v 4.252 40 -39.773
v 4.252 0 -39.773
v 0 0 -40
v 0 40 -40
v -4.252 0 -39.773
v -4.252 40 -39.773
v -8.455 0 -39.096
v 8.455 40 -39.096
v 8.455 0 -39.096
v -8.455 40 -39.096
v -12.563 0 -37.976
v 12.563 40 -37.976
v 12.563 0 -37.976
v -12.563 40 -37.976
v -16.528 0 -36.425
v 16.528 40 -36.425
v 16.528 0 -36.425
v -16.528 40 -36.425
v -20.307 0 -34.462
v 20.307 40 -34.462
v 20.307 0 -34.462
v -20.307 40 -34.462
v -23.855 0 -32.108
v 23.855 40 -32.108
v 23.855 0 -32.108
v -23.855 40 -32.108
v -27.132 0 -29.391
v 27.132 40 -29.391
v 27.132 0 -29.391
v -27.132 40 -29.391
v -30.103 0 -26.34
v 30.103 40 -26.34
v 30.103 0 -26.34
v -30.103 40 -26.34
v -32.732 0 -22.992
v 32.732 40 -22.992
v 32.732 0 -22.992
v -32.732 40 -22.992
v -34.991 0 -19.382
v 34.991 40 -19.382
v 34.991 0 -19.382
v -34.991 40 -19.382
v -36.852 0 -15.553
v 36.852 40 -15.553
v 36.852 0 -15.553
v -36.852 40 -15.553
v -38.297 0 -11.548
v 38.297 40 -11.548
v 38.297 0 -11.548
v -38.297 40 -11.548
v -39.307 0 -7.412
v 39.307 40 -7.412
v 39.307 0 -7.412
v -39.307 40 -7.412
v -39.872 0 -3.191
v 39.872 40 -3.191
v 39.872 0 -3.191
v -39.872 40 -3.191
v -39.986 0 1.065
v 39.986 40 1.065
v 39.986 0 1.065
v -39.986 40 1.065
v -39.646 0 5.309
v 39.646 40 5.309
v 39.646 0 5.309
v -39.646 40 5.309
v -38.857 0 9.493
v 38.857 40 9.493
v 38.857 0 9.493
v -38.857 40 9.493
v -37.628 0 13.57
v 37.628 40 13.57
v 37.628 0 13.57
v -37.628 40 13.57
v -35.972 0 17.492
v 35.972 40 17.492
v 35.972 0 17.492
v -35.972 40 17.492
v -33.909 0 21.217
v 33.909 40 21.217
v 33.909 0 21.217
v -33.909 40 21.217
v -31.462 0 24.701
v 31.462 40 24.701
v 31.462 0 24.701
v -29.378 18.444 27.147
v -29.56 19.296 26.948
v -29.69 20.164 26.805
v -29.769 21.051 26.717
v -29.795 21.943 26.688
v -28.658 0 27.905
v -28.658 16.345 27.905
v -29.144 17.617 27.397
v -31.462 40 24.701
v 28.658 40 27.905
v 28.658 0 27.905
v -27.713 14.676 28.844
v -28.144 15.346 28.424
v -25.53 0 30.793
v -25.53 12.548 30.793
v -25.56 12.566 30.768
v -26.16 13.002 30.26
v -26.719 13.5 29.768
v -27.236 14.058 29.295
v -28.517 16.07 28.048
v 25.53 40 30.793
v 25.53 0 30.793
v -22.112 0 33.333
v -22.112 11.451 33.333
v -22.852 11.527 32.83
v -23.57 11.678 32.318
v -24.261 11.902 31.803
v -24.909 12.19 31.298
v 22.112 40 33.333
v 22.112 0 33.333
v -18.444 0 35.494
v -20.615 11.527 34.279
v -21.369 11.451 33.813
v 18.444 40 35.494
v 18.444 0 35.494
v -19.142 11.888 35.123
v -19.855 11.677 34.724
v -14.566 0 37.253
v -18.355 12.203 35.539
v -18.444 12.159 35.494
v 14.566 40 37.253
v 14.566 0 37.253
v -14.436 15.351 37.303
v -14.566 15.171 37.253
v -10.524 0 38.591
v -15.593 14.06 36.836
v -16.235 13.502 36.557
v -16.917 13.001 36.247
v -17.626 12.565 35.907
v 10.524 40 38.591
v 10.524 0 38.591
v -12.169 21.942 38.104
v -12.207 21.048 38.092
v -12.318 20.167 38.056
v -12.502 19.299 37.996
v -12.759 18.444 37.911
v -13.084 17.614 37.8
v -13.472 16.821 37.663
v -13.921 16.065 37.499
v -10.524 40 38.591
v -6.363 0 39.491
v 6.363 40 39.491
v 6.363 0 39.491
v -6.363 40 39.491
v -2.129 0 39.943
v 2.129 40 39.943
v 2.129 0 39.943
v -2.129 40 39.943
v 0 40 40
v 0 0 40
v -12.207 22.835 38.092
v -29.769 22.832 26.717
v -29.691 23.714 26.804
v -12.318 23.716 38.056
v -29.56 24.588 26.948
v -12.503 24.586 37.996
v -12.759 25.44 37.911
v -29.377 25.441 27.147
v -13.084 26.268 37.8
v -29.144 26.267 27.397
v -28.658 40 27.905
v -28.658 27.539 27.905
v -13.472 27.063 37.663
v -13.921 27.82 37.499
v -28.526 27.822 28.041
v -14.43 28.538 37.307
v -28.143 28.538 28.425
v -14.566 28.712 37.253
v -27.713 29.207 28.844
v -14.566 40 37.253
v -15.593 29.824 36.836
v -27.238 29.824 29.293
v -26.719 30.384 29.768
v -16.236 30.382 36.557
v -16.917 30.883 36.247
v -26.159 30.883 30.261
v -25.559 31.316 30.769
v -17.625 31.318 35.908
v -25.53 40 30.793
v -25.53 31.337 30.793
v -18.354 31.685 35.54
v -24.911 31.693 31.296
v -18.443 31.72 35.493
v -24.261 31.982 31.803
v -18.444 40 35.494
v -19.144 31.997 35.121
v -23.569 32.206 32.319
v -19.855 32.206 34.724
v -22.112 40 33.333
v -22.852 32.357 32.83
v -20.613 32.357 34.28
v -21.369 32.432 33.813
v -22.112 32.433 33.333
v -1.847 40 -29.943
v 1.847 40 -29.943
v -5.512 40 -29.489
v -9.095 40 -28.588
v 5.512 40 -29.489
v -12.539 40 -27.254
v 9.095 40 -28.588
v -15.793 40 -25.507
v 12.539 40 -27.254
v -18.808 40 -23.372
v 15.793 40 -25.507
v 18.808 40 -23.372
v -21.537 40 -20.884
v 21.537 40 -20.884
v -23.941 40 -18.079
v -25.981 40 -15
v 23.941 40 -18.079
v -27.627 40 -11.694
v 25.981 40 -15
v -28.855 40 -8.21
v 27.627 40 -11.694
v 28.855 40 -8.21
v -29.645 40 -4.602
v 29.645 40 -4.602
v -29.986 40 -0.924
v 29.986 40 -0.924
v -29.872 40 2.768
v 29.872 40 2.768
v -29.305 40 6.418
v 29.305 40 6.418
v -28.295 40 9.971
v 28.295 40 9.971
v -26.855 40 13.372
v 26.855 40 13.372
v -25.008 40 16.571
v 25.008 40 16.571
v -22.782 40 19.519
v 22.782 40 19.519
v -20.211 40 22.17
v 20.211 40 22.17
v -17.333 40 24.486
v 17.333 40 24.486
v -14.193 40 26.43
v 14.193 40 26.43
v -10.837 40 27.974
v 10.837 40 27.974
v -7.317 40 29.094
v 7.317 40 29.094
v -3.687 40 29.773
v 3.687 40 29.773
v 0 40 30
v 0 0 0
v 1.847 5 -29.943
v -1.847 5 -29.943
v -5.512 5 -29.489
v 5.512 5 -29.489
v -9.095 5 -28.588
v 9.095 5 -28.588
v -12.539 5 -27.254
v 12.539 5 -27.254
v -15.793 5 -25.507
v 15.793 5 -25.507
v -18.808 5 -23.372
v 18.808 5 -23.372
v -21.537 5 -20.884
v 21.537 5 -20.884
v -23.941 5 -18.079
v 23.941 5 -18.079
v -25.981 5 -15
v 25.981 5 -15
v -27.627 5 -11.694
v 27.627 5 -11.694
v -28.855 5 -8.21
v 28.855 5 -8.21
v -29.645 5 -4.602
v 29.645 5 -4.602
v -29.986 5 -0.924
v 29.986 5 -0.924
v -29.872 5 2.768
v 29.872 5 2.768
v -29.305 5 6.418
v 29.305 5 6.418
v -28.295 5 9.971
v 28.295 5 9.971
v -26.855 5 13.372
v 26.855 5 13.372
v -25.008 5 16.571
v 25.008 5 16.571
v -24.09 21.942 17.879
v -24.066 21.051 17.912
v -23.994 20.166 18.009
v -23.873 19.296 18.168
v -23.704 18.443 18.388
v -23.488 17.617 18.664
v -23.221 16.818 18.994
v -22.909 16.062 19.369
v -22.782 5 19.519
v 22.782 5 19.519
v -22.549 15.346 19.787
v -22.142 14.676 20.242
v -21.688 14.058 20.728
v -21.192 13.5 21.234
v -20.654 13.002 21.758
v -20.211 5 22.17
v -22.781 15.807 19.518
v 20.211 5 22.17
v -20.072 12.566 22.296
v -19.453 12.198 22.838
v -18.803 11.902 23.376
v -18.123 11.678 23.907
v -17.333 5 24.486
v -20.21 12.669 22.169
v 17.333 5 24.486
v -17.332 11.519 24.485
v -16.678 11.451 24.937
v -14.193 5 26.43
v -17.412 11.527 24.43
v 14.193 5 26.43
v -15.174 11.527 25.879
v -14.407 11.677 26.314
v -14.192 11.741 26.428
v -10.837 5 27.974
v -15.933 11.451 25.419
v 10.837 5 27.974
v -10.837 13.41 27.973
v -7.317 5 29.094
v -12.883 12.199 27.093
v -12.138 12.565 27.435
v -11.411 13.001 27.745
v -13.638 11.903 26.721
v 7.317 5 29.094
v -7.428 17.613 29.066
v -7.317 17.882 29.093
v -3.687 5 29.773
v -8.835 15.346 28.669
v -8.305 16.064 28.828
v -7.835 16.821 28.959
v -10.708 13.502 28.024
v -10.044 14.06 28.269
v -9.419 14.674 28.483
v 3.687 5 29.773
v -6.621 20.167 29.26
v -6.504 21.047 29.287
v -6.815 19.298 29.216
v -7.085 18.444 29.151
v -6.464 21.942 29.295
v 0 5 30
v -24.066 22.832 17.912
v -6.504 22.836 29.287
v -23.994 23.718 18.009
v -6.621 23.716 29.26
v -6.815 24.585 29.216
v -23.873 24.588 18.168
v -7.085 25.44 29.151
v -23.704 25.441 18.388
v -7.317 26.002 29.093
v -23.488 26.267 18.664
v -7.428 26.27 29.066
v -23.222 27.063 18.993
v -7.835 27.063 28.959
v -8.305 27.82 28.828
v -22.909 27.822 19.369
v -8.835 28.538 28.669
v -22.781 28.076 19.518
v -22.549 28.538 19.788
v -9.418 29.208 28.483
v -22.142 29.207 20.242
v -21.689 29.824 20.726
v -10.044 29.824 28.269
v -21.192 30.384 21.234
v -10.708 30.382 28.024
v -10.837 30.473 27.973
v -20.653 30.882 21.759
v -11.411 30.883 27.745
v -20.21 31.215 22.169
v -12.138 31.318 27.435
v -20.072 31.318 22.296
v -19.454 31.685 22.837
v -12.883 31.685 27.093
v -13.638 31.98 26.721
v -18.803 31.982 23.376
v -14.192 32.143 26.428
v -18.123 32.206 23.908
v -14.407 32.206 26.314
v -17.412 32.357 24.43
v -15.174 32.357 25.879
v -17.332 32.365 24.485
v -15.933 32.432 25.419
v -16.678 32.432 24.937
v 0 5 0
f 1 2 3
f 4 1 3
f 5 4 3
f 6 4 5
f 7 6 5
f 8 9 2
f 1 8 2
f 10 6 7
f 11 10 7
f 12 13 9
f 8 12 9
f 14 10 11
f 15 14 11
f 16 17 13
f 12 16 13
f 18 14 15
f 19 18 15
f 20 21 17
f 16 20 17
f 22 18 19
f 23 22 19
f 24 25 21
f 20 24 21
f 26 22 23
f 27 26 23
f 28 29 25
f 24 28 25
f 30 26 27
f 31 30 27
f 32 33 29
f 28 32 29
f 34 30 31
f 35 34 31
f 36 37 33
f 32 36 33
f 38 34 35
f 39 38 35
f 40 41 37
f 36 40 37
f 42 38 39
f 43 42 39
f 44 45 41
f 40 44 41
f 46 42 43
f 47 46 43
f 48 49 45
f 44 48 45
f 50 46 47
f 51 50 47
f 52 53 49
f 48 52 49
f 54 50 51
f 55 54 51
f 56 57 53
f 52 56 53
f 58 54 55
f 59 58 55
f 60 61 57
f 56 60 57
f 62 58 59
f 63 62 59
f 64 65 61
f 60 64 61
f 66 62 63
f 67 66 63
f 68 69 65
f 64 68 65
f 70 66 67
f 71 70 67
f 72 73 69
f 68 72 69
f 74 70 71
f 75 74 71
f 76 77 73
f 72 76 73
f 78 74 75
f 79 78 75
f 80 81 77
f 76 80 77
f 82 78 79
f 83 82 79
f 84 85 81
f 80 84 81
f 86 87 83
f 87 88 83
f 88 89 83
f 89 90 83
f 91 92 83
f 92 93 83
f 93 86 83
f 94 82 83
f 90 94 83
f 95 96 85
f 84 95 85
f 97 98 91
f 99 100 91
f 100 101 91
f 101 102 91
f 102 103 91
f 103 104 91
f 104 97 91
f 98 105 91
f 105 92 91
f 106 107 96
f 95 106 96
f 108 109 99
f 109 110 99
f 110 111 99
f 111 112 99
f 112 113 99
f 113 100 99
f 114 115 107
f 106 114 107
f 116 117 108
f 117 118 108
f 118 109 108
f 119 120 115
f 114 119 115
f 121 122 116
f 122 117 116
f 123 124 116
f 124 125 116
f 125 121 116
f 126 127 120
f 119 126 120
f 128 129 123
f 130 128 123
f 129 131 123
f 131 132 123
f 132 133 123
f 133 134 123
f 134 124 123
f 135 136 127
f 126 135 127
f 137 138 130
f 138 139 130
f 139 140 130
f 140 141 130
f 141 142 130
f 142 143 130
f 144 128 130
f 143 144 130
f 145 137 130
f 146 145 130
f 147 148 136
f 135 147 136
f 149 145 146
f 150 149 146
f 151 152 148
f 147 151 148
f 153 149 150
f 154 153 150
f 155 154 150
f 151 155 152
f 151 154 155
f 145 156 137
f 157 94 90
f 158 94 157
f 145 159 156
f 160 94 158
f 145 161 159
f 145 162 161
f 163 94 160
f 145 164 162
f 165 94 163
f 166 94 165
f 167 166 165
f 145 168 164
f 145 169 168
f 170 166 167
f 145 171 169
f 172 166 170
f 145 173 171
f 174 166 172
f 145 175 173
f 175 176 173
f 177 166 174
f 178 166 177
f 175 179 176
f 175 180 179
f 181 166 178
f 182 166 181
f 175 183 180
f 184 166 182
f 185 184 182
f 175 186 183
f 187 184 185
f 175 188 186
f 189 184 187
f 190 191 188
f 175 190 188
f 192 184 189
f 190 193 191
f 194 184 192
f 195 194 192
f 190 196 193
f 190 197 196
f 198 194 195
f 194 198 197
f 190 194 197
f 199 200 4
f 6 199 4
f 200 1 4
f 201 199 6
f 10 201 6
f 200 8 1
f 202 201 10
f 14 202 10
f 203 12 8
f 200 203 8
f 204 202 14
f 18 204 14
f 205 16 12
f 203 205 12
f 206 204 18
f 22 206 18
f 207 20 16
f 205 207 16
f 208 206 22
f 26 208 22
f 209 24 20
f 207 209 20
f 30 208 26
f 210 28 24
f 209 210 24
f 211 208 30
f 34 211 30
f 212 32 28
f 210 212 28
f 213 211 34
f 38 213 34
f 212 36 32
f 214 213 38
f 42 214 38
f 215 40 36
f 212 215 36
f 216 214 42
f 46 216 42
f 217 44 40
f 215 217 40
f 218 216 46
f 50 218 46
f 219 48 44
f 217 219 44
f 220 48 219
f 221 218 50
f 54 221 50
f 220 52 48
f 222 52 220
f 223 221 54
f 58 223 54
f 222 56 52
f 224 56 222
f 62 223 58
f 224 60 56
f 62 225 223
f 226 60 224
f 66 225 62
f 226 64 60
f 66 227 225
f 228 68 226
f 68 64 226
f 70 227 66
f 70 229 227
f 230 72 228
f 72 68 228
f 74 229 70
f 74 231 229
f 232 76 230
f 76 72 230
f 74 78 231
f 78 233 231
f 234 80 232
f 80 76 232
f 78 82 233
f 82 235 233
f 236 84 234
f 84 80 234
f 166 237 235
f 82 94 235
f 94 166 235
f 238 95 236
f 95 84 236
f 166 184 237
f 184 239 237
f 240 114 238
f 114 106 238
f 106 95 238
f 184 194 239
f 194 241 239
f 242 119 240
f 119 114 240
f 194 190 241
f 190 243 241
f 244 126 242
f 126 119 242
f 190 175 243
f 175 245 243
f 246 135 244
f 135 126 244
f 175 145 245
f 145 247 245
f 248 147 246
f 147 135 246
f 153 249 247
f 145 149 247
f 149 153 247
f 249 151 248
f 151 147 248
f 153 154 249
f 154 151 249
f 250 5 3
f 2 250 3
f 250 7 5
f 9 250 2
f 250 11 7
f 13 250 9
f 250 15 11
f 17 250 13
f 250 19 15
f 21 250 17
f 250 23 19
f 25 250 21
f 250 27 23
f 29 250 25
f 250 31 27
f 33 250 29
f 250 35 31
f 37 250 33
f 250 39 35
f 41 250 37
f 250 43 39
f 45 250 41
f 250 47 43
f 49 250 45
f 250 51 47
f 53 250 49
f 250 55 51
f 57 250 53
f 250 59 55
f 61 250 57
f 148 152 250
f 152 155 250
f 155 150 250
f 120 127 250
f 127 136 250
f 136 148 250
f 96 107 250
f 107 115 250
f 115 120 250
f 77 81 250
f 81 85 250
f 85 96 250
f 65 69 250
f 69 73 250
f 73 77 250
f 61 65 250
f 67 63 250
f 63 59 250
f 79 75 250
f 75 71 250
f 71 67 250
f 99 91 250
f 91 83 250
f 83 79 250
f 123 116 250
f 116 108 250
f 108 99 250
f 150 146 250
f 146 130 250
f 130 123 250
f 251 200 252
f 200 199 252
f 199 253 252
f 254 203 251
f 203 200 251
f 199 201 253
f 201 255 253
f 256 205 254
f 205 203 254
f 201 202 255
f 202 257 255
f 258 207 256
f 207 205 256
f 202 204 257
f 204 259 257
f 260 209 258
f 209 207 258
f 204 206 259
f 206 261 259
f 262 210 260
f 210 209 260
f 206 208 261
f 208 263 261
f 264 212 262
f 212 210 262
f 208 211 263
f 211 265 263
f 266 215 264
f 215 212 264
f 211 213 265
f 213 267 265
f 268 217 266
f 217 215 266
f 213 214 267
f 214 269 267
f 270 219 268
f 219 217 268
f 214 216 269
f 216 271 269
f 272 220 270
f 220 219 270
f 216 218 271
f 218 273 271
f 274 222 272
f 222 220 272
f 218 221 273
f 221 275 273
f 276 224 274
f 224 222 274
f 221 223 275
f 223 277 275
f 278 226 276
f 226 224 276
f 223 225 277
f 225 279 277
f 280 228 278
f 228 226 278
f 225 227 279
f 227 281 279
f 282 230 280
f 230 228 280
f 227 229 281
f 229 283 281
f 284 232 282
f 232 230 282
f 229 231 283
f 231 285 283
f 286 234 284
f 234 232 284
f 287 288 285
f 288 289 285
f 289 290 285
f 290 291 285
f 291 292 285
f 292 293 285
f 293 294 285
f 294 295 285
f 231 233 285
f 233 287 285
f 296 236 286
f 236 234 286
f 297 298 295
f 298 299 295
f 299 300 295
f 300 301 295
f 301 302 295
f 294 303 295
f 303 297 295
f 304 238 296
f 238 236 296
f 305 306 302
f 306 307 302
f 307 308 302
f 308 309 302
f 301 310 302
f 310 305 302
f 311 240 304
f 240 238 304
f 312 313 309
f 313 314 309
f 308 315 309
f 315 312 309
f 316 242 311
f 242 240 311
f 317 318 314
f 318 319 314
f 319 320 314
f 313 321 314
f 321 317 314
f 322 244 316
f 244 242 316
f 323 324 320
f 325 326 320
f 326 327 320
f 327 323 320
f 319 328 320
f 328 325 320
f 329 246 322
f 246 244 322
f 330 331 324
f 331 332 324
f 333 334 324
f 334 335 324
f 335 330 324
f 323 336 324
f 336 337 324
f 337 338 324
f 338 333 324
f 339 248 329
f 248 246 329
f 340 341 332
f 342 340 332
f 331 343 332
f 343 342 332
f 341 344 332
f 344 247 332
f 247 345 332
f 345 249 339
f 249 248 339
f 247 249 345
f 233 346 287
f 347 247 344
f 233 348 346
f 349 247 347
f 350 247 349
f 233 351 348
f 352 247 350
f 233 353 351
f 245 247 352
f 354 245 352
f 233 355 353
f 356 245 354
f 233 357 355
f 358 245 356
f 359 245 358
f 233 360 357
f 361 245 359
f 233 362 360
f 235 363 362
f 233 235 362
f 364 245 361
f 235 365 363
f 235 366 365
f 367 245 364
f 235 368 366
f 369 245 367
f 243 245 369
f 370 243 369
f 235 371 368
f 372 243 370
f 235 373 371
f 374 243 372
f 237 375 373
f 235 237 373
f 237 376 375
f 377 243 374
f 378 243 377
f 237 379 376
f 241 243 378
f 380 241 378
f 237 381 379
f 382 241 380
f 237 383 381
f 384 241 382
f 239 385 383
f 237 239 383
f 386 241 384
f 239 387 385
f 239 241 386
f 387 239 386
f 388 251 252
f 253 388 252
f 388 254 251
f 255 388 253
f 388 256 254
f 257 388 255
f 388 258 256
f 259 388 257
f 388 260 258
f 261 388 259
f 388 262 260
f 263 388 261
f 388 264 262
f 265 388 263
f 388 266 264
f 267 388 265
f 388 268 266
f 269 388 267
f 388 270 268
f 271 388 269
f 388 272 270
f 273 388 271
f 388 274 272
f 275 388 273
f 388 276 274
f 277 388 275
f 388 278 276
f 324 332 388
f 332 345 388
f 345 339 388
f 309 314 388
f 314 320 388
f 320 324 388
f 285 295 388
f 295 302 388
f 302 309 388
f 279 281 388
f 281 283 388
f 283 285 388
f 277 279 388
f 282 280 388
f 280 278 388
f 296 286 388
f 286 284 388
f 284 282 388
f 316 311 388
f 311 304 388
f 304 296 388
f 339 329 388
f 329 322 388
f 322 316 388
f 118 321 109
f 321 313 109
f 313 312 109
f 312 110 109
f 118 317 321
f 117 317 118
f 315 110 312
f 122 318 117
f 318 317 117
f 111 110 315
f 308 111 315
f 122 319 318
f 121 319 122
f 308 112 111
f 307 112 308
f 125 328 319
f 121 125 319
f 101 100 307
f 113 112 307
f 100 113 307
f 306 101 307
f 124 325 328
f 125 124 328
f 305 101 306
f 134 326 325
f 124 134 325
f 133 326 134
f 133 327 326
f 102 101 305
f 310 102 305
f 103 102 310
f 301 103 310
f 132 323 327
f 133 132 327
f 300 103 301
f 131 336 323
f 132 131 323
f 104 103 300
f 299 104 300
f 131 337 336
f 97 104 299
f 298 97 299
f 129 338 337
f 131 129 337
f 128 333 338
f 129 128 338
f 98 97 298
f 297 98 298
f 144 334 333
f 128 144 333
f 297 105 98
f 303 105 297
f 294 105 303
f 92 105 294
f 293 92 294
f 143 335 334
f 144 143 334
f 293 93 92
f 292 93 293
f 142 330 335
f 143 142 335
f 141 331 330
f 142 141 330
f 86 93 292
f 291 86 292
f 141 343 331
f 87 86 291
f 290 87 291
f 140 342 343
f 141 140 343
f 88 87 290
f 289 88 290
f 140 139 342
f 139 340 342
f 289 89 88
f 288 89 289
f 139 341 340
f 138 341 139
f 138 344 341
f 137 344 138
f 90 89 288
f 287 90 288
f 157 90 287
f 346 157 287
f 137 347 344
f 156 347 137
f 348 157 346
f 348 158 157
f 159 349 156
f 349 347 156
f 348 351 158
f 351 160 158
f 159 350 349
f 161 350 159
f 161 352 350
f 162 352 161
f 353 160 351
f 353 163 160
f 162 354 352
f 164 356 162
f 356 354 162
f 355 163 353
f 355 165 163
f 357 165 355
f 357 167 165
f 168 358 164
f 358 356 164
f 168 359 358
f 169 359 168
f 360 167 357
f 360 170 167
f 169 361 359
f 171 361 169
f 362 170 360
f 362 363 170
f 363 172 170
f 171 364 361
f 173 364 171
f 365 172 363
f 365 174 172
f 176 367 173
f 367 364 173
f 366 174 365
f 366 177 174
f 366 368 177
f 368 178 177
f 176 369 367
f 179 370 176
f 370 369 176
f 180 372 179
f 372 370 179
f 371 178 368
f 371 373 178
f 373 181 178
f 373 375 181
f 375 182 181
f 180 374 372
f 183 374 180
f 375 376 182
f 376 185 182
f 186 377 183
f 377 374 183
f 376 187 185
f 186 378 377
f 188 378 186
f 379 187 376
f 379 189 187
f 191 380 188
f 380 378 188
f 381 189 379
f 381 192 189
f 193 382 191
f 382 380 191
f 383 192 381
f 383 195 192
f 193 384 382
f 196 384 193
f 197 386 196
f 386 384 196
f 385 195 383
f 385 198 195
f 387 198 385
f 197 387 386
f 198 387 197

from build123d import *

# Parameters (mm, degrees)
SKETCH_1_R                   = 40
EXTRUDE_1_DEPTH              = 40
SKETCH_3_R                   = 30
CUT_EXTRUDE_2_DEPTH          = 35
HOLE_WIZARD_21_0_21_1_REACH  = 100.524
HOLE_WIZARD_21_0_21_1_BORE_R = 10.5


with BuildPart() as part:
    # 草圖1 → 填料-伸長1 (new body)
    with BuildSketch(Plane(origin=(0, 0, 0), x_dir=(1, 0, 0), z_dir=(0, 1, 0))):
        with Locations(Location((0, 0, 0), (0, 0, 270))):
            Circle(SKETCH_1_R)
    extrude(amount=EXTRUDE_1_DEPTH)

    # 草圖3 → 除料-伸長2 (cut)
    with BuildSketch(Plane(origin=(0, 40, 0), x_dir=(1, 0, 0), z_dir=(0, 1, 0))):
        with Locations(Location((0, 0, 0), (0, 0, 270))):
            Circle(SKETCH_3_R)
    extrude(amount=-CUT_EXTRUDE_2_DEPTH, mode=Mode.SUBTRACT)

    # Ø21.0 (21) 直徑孔1 bore (on position points) → Ø21.0 (21) 直徑孔1 (cut, up to next)
    with BuildSketch(Plane(origin=(-21.744758151, 21.94181737, 33.573285406), x_dir=(0.839332135156, 0, 0.543618953768), z_dir=(-0.543618953768, 0, 0.839332135156)), mode=Mode.PRIVATE) as hole_wizard_21_0_21_1_sk1:
        Circle(HOLE_WIZARD_21_0_21_1_BORE_R)
    hole_wizard_21_0_21_1_tool1 = extrude(hole_wizard_21_0_21_1_sk1.sketch, amount=-HOLE_WIZARD_21_0_21_1_REACH, mode=Mode.PRIVATE) & part.part
    add(hole_wizard_21_0_21_1_tool1.solids().sort_by_distance((-21.744758, 21.941817, 33.573285))[0], mode=Mode.SUBTRACT)


solid = part.part
